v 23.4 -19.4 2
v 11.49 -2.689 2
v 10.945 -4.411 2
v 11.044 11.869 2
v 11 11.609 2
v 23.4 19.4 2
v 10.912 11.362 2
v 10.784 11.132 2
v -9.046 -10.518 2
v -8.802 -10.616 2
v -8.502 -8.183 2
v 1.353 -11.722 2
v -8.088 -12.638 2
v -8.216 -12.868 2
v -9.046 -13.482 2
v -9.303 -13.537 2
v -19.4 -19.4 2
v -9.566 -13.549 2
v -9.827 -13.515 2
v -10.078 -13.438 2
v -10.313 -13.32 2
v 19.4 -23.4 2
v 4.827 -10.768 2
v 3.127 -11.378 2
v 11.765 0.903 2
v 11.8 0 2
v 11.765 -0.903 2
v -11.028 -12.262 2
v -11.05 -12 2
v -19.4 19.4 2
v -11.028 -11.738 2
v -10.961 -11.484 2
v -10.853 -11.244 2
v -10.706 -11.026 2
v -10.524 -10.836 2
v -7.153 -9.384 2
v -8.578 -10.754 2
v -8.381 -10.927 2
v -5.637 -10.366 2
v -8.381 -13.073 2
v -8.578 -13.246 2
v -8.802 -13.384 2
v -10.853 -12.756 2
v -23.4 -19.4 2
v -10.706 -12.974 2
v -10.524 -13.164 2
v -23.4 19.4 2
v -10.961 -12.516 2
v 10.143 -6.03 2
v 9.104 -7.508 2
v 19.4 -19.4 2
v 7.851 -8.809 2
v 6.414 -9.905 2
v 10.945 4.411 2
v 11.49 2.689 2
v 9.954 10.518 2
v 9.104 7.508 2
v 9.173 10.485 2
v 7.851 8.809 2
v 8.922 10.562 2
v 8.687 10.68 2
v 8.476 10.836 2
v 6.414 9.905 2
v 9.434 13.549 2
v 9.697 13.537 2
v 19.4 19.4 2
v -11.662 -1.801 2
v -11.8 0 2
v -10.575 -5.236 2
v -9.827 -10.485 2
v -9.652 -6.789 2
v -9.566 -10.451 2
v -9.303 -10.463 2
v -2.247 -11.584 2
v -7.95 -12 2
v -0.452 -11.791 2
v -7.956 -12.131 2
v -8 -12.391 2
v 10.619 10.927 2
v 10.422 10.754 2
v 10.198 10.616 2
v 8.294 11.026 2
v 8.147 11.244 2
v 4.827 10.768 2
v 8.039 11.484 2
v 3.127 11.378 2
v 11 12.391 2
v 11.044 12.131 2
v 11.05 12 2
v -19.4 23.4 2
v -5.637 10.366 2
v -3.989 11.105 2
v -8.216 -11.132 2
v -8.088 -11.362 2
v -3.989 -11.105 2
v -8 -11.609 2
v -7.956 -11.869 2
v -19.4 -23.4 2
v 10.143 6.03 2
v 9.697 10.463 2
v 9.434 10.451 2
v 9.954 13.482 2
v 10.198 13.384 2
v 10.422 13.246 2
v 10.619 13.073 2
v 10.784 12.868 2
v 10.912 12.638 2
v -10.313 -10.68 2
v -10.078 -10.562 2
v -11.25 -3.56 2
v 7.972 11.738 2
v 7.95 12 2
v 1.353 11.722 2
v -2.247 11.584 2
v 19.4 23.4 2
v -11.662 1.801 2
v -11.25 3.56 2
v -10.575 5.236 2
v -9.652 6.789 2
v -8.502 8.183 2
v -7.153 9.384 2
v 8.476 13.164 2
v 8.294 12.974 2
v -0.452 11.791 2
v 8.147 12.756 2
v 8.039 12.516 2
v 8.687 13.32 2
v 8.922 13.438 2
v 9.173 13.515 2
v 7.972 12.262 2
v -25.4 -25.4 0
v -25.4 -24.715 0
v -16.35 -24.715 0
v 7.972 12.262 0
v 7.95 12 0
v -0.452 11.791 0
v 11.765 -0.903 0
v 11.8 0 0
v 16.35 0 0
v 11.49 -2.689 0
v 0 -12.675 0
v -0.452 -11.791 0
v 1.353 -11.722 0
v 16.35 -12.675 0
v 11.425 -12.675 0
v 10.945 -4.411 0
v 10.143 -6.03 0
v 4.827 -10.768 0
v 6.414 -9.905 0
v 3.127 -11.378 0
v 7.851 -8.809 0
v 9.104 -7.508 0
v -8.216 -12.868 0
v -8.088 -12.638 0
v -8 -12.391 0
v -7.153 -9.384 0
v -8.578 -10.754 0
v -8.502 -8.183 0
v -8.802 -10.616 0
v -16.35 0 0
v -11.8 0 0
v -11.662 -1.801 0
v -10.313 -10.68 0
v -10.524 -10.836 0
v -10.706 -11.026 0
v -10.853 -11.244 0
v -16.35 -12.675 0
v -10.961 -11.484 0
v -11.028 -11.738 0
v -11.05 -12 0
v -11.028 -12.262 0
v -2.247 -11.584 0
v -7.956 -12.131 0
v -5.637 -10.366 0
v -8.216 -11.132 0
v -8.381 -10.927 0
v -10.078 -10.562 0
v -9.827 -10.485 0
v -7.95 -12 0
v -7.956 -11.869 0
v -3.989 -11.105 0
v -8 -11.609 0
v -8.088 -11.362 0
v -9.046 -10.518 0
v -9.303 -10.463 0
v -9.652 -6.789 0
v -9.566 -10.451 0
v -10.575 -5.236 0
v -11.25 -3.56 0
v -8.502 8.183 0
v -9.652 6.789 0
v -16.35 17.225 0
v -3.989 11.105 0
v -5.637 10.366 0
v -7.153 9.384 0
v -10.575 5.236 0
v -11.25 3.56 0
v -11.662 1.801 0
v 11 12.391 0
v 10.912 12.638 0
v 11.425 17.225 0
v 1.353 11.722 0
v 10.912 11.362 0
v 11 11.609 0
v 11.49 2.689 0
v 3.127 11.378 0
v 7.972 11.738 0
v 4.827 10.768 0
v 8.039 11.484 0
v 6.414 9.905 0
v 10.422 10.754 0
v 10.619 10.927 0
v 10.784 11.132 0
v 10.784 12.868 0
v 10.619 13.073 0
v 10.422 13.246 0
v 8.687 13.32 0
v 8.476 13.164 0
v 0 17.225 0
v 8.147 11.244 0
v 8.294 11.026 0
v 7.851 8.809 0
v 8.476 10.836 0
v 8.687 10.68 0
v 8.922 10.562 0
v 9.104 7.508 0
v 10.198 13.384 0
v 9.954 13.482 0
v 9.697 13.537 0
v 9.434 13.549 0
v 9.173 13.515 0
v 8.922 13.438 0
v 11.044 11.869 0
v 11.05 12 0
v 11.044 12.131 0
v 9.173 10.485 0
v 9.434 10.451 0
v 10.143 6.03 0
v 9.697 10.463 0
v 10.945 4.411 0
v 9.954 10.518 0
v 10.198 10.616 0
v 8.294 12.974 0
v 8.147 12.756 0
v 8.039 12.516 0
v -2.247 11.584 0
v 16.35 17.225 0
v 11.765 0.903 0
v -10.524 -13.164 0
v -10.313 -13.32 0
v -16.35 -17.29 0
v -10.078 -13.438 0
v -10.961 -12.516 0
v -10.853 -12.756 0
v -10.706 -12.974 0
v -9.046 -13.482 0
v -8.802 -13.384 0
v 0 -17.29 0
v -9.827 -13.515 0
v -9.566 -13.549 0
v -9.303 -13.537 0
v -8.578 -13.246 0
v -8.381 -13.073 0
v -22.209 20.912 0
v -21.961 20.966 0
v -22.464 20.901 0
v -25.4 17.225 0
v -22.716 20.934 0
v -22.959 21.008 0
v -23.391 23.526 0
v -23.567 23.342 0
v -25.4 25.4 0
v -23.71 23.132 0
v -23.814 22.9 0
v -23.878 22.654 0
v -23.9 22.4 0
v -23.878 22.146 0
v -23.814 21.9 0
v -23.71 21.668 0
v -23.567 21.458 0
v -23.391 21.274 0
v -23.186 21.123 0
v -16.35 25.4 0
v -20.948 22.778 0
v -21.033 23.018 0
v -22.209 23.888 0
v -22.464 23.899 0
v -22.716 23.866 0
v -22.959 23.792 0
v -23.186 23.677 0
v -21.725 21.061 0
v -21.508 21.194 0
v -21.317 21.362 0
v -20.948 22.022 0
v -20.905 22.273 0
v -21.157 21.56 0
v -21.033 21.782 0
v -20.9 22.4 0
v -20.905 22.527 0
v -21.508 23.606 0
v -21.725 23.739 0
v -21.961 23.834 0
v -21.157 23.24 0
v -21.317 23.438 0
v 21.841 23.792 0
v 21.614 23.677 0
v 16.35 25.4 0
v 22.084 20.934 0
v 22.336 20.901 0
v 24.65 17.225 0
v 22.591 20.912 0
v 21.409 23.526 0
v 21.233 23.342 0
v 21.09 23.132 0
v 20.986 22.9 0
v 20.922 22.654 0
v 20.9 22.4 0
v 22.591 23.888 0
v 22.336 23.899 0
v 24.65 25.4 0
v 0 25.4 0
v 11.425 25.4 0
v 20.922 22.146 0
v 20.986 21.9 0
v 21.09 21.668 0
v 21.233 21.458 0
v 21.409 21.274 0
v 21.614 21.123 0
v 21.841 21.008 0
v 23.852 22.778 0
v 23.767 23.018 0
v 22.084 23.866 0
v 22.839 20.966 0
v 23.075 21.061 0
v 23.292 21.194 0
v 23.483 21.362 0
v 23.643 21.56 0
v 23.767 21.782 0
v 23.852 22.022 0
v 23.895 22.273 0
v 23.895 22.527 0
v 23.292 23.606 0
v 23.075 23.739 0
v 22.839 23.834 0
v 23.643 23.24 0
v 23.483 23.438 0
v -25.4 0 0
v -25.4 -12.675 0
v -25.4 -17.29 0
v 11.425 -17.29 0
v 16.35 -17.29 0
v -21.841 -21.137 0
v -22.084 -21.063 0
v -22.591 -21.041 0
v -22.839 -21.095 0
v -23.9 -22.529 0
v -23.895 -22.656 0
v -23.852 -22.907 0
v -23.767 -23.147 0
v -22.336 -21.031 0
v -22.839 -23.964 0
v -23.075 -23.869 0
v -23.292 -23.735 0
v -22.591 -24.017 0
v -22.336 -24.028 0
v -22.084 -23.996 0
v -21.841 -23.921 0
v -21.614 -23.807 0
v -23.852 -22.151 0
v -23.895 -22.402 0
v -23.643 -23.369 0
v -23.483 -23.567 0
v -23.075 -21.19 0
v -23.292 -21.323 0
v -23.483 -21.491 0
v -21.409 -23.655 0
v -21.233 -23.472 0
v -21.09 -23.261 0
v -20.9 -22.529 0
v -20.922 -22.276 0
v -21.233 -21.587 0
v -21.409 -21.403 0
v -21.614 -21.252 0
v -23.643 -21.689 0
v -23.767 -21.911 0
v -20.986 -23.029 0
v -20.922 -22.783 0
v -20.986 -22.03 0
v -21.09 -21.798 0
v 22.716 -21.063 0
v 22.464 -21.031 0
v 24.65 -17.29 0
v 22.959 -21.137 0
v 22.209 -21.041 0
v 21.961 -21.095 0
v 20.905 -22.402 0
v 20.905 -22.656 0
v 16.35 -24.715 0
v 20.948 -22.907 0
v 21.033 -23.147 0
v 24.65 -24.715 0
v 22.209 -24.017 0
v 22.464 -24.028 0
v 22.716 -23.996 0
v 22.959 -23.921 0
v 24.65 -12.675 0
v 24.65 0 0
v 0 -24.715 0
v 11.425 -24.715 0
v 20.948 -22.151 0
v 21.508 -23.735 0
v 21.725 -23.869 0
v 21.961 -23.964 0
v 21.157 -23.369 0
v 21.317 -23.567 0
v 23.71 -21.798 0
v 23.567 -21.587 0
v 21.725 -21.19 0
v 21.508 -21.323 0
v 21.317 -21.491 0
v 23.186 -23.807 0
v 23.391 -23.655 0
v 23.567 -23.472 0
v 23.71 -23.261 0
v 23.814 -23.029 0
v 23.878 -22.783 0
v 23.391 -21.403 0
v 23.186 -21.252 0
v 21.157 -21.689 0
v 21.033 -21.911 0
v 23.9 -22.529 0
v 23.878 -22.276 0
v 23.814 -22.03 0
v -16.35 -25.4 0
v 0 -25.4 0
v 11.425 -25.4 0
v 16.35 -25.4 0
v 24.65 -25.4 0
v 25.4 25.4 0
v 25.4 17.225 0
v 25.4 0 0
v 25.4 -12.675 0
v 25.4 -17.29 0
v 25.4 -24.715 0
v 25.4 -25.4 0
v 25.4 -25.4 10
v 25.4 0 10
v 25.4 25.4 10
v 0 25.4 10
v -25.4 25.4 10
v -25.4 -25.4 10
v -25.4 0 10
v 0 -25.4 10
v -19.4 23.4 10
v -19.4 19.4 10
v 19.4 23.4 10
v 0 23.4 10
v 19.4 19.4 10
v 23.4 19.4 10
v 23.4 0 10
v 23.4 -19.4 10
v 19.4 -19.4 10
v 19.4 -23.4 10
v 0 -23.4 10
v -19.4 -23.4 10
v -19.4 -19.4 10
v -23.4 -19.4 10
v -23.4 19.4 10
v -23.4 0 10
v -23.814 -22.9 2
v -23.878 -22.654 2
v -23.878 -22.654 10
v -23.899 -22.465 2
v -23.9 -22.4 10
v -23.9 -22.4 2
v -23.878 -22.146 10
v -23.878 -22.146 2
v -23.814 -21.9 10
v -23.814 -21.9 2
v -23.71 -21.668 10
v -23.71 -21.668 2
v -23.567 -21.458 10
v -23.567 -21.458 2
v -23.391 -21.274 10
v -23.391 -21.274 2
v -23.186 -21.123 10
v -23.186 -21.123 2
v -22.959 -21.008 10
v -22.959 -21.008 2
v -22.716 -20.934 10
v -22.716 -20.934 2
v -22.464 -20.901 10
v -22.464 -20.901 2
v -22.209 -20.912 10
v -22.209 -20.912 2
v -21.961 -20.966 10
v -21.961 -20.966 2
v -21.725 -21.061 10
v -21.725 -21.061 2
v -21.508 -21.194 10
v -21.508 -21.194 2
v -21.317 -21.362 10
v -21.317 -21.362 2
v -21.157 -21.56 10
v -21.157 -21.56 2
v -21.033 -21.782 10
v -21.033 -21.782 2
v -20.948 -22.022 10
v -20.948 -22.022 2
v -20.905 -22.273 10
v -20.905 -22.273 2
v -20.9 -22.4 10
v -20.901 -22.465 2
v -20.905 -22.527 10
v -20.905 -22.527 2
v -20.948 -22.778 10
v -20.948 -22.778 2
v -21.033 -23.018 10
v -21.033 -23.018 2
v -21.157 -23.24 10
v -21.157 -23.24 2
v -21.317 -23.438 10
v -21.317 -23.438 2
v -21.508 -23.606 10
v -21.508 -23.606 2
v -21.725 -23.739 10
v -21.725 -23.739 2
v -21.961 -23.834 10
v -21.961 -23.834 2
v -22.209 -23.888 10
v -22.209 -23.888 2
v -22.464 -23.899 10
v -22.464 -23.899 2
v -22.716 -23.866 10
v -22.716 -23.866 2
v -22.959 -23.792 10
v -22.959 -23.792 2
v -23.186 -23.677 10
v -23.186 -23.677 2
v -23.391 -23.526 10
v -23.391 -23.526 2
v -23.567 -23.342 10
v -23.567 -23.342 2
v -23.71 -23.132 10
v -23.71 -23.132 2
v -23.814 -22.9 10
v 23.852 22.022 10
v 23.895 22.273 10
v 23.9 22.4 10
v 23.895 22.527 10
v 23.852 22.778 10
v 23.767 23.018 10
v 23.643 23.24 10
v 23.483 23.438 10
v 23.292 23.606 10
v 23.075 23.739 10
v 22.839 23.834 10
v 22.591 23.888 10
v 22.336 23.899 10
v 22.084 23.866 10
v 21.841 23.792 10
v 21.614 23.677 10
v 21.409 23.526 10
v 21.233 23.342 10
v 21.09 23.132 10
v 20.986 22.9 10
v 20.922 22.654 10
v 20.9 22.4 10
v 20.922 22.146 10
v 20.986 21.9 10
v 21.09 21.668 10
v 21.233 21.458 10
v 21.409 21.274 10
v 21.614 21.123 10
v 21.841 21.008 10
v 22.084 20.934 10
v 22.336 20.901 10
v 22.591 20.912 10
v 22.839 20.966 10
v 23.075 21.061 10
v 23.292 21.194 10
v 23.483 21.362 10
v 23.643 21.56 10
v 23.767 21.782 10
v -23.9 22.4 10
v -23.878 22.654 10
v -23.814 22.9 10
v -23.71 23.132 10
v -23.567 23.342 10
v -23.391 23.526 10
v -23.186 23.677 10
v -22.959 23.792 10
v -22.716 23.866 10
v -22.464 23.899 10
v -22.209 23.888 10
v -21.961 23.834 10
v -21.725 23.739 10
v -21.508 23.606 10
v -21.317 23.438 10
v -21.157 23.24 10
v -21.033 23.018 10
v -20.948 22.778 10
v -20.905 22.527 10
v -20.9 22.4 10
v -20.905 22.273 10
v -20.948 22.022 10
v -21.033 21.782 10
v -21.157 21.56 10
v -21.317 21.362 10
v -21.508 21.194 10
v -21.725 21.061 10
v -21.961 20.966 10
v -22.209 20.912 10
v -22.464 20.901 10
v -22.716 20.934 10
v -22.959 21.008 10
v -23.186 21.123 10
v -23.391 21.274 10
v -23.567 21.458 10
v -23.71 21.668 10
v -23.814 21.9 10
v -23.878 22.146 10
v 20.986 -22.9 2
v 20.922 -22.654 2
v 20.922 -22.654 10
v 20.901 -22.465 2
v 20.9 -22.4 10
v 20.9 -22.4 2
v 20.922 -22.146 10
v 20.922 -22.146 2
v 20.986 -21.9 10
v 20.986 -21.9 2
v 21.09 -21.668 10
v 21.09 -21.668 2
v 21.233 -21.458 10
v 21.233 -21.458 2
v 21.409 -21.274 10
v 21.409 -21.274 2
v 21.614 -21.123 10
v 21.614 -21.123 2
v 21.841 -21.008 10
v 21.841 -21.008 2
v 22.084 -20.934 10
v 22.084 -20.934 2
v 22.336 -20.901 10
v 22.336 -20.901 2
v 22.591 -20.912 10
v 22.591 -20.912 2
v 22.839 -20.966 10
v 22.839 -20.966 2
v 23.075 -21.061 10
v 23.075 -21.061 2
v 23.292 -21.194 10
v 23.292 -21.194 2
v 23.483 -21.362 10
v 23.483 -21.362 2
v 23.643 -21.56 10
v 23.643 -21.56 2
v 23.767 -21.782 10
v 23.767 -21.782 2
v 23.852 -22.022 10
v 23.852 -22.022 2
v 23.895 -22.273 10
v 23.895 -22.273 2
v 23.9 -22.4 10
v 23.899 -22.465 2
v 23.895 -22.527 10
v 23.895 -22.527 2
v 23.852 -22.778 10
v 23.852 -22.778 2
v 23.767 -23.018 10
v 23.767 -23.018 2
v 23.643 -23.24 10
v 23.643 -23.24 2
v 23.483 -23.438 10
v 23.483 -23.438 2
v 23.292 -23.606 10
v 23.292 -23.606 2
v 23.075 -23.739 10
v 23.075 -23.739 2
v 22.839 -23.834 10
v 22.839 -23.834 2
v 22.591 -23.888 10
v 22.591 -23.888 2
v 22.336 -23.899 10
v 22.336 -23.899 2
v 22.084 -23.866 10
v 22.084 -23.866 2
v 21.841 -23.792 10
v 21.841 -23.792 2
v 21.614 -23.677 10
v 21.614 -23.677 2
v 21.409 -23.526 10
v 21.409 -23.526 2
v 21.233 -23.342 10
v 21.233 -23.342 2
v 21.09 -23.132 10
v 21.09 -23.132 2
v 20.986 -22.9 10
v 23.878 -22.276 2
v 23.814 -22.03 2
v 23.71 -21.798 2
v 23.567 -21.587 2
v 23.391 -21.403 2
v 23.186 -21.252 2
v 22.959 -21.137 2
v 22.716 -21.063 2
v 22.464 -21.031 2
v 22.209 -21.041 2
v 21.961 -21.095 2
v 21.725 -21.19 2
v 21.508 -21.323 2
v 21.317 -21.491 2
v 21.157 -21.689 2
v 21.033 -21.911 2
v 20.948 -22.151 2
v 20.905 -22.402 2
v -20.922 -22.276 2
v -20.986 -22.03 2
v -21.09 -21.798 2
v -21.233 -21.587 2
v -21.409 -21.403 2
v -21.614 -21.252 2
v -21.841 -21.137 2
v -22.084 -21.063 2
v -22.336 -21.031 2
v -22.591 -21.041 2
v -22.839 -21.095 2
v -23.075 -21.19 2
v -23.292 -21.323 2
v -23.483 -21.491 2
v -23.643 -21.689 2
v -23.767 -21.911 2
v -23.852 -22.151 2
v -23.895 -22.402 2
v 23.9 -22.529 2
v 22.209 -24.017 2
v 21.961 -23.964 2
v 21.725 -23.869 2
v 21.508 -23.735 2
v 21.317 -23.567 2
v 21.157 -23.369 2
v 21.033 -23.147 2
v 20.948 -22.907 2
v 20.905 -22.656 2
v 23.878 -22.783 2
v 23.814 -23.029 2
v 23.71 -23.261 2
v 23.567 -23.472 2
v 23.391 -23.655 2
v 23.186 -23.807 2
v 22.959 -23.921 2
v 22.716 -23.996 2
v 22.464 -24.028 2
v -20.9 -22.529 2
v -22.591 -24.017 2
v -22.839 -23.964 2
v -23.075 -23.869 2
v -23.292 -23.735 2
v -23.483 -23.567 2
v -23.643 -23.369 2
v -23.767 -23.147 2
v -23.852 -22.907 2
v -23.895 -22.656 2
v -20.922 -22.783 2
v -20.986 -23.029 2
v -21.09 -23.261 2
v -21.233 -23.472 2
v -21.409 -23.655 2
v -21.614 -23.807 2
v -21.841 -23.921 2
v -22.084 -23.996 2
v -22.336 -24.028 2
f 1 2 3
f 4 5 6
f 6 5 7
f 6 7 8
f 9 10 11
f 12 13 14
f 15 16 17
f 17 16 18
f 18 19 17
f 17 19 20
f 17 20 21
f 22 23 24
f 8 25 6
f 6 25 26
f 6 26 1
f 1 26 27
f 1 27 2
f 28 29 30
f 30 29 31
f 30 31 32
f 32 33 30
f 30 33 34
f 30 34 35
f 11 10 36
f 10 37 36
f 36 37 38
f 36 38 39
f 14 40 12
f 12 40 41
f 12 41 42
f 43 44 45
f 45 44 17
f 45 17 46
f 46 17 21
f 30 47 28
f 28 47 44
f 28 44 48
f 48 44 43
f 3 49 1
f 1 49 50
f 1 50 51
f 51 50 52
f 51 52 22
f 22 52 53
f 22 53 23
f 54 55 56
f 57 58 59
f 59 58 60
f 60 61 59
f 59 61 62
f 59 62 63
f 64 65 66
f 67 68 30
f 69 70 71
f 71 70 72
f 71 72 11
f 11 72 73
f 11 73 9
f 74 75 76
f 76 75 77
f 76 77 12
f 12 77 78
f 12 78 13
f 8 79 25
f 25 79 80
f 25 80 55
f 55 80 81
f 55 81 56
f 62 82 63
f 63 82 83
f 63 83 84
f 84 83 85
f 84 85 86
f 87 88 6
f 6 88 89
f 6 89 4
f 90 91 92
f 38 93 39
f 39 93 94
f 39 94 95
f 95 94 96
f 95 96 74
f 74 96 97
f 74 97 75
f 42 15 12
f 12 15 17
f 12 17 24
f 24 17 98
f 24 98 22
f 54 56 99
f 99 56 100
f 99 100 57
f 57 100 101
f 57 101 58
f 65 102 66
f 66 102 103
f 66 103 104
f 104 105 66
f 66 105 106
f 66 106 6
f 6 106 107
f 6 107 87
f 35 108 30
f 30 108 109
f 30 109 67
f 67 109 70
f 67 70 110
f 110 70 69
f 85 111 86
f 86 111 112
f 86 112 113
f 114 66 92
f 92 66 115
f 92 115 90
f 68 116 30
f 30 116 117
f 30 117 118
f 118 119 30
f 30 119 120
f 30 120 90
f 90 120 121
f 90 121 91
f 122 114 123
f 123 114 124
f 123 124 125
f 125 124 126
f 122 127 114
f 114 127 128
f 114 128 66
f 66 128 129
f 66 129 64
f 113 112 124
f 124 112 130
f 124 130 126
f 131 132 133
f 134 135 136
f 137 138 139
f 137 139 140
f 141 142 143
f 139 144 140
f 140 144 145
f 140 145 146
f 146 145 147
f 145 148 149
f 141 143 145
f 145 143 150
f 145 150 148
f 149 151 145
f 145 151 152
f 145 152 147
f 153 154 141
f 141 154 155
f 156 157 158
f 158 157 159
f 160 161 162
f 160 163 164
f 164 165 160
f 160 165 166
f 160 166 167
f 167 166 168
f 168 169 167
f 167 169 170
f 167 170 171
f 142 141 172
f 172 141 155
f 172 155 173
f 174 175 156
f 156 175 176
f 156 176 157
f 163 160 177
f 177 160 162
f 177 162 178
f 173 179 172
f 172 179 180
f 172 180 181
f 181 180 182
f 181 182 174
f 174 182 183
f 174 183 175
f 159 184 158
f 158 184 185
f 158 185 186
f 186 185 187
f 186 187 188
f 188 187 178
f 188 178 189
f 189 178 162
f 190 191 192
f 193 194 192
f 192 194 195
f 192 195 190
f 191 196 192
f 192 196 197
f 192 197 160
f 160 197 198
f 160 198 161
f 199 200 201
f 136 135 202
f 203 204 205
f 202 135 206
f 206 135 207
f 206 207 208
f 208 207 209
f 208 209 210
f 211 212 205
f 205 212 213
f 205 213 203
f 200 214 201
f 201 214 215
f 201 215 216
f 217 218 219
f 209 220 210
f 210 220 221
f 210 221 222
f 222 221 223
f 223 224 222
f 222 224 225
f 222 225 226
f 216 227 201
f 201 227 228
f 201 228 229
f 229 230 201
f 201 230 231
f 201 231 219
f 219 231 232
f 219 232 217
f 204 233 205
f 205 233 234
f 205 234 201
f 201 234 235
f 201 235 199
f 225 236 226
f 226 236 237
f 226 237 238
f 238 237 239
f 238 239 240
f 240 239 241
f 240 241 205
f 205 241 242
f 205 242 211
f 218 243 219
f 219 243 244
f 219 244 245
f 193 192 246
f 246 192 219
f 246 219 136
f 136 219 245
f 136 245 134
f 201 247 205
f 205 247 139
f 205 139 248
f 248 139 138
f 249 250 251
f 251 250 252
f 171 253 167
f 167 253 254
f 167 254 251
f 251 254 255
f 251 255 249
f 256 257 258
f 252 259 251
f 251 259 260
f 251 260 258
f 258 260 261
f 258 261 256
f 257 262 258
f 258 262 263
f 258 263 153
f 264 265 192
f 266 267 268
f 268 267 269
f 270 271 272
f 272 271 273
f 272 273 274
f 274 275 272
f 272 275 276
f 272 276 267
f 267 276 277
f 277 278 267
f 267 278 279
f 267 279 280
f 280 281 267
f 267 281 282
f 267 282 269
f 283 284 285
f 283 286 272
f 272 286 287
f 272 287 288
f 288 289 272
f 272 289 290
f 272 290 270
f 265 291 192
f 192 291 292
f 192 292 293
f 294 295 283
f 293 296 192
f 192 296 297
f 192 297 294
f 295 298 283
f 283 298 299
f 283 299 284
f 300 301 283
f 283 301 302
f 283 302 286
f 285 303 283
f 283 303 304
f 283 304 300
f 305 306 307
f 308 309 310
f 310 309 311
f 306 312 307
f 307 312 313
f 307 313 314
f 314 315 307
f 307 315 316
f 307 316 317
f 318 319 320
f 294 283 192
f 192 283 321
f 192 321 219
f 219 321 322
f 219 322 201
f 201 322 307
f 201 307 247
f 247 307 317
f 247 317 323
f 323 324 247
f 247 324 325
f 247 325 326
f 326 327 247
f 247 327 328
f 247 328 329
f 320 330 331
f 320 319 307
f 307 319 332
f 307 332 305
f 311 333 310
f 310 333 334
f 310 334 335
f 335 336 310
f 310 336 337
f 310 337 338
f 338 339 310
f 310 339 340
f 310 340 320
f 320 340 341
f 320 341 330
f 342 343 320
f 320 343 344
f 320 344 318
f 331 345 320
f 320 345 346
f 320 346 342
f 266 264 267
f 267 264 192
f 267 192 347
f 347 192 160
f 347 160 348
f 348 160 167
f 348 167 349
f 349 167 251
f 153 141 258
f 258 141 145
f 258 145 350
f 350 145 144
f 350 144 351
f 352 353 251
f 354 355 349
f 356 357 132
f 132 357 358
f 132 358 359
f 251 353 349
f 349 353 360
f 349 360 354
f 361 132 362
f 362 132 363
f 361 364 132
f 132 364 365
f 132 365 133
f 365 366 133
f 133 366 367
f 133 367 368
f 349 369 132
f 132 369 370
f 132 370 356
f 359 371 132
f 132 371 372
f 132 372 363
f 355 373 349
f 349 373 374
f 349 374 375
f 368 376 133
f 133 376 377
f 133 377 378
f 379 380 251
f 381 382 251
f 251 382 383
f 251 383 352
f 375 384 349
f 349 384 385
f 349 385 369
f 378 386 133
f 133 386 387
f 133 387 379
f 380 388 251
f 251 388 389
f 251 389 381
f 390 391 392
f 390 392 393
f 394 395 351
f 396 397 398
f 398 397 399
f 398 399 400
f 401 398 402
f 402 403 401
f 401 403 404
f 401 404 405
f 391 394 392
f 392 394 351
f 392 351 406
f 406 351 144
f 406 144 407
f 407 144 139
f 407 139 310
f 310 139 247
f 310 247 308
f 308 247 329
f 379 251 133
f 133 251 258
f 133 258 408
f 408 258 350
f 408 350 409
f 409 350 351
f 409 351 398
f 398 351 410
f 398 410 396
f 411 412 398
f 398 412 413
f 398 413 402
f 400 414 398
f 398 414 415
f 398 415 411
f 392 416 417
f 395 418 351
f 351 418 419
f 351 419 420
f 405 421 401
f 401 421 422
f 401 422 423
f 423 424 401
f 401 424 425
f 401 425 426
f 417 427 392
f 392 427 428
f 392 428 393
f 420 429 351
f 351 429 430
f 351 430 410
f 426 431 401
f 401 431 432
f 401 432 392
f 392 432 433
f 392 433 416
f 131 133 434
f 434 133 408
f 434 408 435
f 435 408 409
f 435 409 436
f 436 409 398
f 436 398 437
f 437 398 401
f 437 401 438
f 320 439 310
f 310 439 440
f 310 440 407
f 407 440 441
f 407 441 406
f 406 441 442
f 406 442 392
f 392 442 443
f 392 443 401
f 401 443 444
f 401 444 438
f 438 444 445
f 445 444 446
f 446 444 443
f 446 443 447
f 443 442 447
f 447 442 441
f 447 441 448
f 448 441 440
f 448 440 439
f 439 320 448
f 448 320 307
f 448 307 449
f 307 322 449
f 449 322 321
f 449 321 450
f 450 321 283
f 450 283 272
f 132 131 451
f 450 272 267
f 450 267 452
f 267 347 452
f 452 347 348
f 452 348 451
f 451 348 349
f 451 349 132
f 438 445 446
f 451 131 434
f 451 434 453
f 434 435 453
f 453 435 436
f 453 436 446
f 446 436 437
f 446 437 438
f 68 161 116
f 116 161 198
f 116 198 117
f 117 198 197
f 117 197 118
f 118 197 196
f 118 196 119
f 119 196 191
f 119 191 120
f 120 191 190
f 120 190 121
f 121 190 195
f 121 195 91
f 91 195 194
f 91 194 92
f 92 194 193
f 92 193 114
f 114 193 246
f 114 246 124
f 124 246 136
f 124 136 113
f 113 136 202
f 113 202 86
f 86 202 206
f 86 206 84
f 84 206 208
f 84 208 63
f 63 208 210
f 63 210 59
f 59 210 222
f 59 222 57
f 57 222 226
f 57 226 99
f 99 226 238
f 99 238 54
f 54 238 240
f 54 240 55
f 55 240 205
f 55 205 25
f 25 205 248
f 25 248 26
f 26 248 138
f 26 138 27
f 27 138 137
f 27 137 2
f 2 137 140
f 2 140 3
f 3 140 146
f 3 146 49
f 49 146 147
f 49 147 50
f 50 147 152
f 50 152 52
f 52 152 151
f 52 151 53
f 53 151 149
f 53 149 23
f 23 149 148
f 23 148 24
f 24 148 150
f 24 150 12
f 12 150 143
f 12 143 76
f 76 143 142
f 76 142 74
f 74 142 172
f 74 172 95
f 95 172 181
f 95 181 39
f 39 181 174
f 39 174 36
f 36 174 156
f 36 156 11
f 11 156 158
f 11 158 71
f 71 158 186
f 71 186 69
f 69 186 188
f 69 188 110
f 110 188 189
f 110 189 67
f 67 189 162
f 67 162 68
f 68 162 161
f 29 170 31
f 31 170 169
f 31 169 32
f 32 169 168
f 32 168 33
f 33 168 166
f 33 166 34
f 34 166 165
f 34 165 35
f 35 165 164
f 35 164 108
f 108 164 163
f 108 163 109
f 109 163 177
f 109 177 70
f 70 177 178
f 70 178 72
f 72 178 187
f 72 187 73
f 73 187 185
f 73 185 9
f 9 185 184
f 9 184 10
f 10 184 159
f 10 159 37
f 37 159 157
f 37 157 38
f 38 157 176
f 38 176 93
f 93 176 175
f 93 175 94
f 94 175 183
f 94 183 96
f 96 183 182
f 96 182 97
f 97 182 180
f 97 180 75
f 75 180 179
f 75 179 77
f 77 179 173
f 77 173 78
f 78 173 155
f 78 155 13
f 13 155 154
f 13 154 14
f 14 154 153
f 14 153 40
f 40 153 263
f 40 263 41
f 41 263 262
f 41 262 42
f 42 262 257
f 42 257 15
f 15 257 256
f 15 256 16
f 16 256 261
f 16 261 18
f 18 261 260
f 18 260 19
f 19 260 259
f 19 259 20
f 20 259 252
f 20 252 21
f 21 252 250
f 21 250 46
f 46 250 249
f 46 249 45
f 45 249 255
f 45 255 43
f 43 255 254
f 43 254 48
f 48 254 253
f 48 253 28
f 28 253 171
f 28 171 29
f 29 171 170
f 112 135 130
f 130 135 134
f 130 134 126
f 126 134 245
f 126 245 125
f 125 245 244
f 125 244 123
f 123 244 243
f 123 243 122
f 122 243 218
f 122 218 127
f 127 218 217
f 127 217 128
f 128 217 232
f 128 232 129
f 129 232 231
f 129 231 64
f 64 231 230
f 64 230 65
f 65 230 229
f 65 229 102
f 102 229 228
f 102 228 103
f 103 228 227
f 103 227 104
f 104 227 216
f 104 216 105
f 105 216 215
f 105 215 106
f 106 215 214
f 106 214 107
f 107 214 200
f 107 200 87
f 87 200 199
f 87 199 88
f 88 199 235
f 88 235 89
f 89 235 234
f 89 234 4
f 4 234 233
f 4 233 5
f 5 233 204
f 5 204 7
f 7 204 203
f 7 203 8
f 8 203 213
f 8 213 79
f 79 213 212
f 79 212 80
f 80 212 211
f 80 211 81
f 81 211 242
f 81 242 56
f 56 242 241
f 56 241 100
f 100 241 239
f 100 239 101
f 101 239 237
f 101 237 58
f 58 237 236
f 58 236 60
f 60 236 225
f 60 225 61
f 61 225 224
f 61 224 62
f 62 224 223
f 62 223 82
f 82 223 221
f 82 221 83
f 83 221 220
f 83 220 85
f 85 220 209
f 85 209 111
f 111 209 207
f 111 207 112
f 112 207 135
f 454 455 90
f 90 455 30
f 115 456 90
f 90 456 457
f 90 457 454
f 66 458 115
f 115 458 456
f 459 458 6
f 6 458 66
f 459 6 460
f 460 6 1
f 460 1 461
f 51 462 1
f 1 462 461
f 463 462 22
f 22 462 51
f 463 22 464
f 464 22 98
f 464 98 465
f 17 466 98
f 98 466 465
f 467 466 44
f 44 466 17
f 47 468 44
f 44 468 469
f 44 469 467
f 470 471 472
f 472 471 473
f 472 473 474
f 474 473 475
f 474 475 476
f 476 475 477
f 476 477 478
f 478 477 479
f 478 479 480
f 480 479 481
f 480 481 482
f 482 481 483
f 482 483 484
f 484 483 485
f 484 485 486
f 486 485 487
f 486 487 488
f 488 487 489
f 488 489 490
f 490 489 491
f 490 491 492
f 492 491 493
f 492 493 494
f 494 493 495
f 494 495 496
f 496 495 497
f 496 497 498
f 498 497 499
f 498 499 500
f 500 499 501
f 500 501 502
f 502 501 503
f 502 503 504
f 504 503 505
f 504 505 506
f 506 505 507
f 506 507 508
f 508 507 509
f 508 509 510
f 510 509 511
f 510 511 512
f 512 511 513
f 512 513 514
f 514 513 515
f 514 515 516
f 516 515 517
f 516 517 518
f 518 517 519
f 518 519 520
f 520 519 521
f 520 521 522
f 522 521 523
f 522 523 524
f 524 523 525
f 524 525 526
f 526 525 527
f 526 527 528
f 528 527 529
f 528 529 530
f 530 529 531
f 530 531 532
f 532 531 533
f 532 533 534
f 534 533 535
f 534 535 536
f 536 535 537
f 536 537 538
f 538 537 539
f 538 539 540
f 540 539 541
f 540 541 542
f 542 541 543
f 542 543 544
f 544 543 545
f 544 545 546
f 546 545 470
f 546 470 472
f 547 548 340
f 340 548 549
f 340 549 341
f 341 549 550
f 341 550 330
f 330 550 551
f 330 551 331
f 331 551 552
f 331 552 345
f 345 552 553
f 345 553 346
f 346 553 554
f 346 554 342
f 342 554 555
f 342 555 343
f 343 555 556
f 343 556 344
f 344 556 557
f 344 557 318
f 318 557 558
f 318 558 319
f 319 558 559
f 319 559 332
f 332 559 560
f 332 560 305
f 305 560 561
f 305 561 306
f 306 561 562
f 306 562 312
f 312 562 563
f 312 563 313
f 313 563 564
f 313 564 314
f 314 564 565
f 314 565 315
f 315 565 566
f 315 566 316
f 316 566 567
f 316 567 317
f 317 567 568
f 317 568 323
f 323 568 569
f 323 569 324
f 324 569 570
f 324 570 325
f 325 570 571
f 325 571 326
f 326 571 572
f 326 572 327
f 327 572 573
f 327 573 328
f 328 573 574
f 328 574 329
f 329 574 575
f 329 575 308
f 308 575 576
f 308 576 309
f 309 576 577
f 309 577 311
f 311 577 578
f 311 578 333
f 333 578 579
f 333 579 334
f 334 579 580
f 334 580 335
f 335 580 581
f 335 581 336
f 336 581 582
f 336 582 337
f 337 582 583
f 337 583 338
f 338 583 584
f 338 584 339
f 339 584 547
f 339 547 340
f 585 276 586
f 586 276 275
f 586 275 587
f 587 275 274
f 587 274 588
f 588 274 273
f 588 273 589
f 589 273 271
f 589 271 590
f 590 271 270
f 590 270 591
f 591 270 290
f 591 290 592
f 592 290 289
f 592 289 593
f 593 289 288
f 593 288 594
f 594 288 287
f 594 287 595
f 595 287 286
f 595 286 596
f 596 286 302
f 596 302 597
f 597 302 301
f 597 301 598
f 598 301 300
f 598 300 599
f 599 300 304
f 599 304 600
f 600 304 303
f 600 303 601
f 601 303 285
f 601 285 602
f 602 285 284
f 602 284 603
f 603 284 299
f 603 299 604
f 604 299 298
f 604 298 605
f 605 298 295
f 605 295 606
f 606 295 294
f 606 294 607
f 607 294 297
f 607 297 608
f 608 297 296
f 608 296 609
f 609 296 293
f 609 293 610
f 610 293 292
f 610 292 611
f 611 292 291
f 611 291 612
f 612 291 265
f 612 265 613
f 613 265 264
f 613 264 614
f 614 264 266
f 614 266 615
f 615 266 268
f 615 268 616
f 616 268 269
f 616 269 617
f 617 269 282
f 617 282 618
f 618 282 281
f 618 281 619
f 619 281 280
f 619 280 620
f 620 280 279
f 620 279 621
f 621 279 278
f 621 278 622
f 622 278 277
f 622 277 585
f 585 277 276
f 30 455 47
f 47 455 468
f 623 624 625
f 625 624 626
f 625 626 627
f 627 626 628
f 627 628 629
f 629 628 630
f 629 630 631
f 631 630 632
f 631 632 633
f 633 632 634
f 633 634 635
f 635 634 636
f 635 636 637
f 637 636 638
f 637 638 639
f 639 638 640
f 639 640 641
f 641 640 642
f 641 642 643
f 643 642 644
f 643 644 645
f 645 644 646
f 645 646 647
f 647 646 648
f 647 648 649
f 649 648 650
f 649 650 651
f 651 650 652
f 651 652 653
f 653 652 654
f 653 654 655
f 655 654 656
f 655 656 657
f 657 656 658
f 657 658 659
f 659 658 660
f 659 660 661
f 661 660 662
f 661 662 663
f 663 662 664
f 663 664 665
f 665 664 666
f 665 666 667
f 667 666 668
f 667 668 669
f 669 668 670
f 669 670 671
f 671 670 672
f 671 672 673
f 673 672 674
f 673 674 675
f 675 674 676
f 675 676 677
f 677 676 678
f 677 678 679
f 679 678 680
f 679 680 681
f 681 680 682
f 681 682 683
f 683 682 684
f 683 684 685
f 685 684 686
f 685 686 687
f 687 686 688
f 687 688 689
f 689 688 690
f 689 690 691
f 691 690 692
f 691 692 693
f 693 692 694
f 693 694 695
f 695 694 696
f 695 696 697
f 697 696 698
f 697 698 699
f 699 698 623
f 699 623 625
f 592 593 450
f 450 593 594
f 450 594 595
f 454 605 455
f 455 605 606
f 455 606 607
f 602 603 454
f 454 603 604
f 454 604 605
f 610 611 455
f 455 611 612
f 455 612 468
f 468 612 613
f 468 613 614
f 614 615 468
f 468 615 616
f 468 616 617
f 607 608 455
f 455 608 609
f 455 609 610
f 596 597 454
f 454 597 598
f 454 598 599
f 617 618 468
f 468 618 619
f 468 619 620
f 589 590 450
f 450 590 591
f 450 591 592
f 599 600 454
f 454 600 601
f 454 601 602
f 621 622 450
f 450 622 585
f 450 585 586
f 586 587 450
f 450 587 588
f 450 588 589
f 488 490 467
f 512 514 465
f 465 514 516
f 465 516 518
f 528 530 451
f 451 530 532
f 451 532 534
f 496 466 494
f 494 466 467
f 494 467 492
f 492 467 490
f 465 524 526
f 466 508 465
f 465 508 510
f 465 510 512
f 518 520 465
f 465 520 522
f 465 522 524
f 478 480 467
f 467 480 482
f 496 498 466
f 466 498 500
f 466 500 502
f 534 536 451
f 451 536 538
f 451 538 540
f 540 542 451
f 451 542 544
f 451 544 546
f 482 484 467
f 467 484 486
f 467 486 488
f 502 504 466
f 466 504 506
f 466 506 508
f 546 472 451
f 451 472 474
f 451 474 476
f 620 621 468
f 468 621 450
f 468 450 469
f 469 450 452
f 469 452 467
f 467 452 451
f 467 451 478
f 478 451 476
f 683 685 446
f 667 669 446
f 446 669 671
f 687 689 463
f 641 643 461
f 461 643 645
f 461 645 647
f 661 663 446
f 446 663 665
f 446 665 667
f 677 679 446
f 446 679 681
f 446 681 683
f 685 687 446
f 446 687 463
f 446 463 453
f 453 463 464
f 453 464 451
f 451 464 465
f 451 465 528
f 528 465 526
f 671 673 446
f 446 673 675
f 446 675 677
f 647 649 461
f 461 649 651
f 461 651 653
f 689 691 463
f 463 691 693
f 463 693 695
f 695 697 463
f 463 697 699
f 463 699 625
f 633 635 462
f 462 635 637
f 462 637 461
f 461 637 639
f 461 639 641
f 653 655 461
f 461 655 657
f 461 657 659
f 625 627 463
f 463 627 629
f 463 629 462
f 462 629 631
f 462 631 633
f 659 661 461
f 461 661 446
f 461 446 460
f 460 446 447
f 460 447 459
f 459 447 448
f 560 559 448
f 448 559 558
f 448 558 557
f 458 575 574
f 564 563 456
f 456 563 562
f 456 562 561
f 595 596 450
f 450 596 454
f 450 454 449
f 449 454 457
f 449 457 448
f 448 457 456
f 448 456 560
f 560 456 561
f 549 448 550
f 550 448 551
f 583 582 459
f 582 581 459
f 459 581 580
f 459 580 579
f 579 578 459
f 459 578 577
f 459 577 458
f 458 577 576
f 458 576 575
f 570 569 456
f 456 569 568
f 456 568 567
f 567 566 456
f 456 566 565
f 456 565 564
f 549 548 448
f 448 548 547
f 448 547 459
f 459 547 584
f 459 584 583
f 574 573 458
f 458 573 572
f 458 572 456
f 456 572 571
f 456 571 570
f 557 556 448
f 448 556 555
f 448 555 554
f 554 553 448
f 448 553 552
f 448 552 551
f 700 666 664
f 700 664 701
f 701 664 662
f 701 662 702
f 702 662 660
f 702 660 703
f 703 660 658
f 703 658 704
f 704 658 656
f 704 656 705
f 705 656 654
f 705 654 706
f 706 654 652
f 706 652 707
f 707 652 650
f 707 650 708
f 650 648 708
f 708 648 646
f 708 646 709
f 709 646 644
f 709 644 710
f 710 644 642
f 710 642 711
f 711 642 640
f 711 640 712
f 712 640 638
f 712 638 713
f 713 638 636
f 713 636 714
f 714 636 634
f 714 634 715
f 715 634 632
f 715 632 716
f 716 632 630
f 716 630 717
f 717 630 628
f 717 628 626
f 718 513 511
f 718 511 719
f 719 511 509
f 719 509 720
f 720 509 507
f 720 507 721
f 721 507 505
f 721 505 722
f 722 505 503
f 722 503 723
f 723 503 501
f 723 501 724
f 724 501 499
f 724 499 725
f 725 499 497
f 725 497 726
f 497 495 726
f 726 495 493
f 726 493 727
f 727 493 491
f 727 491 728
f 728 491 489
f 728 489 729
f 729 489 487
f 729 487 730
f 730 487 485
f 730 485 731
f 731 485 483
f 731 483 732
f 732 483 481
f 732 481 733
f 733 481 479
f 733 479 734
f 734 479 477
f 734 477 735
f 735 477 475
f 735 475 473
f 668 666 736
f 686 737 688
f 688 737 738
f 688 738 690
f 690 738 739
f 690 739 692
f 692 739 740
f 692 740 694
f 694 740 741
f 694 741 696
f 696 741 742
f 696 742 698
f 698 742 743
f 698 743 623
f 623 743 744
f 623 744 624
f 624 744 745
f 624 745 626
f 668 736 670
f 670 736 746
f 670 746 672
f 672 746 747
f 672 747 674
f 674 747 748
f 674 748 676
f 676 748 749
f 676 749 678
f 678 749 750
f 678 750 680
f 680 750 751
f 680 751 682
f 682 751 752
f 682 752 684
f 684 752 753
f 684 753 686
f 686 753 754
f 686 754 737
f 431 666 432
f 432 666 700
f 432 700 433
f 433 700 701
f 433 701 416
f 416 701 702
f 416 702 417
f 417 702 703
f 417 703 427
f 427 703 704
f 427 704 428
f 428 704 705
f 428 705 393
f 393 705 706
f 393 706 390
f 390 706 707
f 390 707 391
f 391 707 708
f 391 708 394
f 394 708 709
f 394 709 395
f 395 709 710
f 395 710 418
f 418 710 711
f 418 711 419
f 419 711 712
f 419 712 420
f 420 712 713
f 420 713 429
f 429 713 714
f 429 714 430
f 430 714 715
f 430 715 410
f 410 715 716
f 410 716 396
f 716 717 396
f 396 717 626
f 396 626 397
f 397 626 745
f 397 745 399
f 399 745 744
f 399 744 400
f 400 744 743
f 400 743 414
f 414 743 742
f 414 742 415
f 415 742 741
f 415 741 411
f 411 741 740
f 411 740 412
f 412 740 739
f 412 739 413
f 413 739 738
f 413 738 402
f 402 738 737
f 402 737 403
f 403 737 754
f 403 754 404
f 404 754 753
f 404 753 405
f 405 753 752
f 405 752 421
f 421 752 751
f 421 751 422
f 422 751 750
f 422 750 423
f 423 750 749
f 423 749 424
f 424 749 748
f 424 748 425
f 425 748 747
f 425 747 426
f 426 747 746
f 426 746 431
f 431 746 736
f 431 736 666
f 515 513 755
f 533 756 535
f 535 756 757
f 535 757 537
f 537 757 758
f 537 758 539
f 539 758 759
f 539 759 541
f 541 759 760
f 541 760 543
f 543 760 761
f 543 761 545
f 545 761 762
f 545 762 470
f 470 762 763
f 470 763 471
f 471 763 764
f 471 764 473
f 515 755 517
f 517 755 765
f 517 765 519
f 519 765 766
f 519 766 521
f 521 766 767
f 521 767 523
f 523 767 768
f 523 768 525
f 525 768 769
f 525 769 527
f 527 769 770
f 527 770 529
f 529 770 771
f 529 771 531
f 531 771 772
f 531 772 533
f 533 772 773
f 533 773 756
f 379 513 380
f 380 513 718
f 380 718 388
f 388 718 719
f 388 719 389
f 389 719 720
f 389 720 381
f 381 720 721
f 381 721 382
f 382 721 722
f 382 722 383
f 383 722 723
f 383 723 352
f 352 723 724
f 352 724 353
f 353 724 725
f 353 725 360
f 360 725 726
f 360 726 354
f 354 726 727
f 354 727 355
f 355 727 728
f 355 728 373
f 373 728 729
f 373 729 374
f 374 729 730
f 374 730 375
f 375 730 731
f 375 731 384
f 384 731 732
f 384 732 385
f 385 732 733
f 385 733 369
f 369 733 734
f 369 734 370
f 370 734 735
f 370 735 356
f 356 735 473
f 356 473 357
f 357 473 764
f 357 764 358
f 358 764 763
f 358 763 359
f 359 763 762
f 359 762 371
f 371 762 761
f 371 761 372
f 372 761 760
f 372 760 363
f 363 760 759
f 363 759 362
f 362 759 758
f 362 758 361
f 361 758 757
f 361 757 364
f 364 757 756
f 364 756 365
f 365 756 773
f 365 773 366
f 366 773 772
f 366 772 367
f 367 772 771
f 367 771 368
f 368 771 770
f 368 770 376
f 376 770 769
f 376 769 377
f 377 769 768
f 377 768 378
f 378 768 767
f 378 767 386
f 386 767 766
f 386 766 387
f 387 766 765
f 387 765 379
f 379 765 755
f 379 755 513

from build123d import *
from build123d.topology import SkipClean

# Parameters (mm, degrees)
SKETCH3_W           = 50.8
SKETCH3_H           = 50.8
SKETCH3_R           = 11.8
SKETCH3_R_2         = 1.55
BOSS_EXTRUDE5_DEPTH = 2
SKETCH1_W           = 2
SKETCH1_H           = 38.8
SKETCH1_W_2         = 38.8
SKETCH1_H_2         = 2
BOSS_EXTRUDE6_DEPTH = 10
SKETCH7_R           = 1.5
CUT_EXTRUDE2_DEPTH  = 37.80108694


with BuildPart() as part:
    # Sketch3 → Boss-Extrude5 (new body)
    with BuildSketch(Plane.XY):
        Rectangle(SKETCH3_W, SKETCH3_H)
        Circle(SKETCH3_R, mode=Mode.SUBTRACT)
        with Locations((-9.5, -12)):
            Circle(SKETCH3_R_2, mode=Mode.SUBTRACT)
        with Locations((9.5, 12)):
            Circle(SKETCH3_R_2, mode=Mode.SUBTRACT)
    extrude(amount=BOSS_EXTRUDE5_DEPTH)

    # Sketch1 → Boss-Extrude6 (add)
    with BuildSketch(Plane.XY):
        with Locations((24.4, 0)):
            Rectangle(SKETCH1_W, SKETCH1_H)
        with BuildLine():
            Line((21.281966011, -23.4), (19.4, -23.4))
            Line((19.4, -23.4), (19.4, -25.4))
            Line((19.4, -25.4), (25.4, -25.4))
            Line((25.4, -25.4), (25.4, -19.4))
            Line((25.4, -19.4), (23.4, -19.4))
            Line((23.4, -19.4), (23.4, -21.281966011))
            ThreePointArc((23.4, -21.281966011), (23.769306394, -21.787627564), (23.9, -22.4))
            ThreePointArc((23.9, -22.4), (22.935233135, -23.801258538), (21.281966011, -23.4))
        make_face()
        with BuildLine():
            Line((19.4, -19.4), (19.4, -23.4))
            Line((19.4, -23.4), (21.281966011, -23.4))
            ThreePointArc((21.281966011, -23.4), (21.339339828, -21.339339828), (23.4, -21.281966011))
            Line((23.4, -21.281966011), (23.4, -19.4))
            Line((23.4, -19.4), (19.4, -19.4))
        make_face()
        with Locations((0, -24.4)):
            Rectangle(SKETCH1_W_2, SKETCH1_H_2)
        with BuildLine():
            ThreePointArc((-20.9, -22.4), (-20.998741462, -22.935233135), (-21.281966011, -23.4))
            Line((-21.281966011, -23.4), (-19.4, -23.4))
            Line((-19.4, -23.4), (-19.4, -19.4))
            Line((-19.4, -19.4), (-23.4, -19.4))
            Line((-23.4, -19.4), (-23.4, -21.281966011))
            ThreePointArc((-23.4, -21.281966011), (-21.787627564, -21.030693606), (-20.9, -22.4))
        make_face()
        with BuildLine():
            Line((-19.4, -23.4), (-21.281966011, -23.4))
            ThreePointArc((-21.281966011, -23.4), (-23.460660172, -23.460660172), (-23.4, -21.281966011))
            Line((-23.4, -21.281966011), (-23.4, -19.4))
            Line((-23.4, -19.4), (-25.4, -19.4))
            Line((-25.4, -19.4), (-25.4, -25.4))
            Line((-25.4, -25.4), (-19.4, -25.4))
            Line((-19.4, -25.4), (-19.4, -23.4))
        make_face()
        with Locations((-24.4, 0)):
            Rectangle(SKETCH1_W, SKETCH1_H)
        with BuildLine():
            Line((-25.4, 19.4), (-23.4, 19.4))
            Line((-23.4, 19.4), (-23.4, 21.281966011))
            ThreePointArc((-23.4, 21.281966011), (-23.460660172, 23.460660172), (-21.281966011, 23.4))
            Line((-21.281966011, 23.4), (-19.4, 23.4))
            Line((-19.4, 23.4), (-19.4, 25.4))
            Line((-19.4, 25.4), (-25.4, 25.4))
            Line((-25.4, 25.4), (-25.4, 19.4))
        make_face()
        with BuildLine():
            Line((-23.4, 21.281966011), (-23.4, 19.4))
            Line((-23.4, 19.4), (-19.4, 19.4))
            Line((-19.4, 19.4), (-19.4, 23.4))
            Line((-19.4, 23.4), (-21.281966011, 23.4))
            ThreePointArc((-21.281966011, 23.4), (-20.998741462, 22.935233135), (-20.9, 22.4))
            ThreePointArc((-20.9, 22.4), (-21.787627564, 21.030693606), (-23.4, 21.281966011))
        make_face()
        with Locations((0, 24.4)):
            Rectangle(SKETCH1_W_2, SKETCH1_H_2)
        with BuildLine():
            Line((23.4, 21.281966011), (23.4, 19.4))
            Line((23.4, 19.4), (25.4, 19.4))
            Line((25.4, 19.4), (25.4, 25.4))
            Line((25.4, 25.4), (19.4, 25.4))
            Line((19.4, 25.4), (19.4, 23.4))
            Line((19.4, 23.4), (21.281966011, 23.4))
            ThreePointArc((21.281966011, 23.4), (22.935233135, 23.801258538), (23.9, 22.4))
            ThreePointArc((23.9, 22.4), (23.769306394, 21.787627564), (23.4, 21.281966011))
        make_face()
        with BuildLine():
            Line((19.4, 19.4), (23.4, 19.4))
            Line((23.4, 19.4), (23.4, 21.281966011))
            ThreePointArc((23.4, 21.281966011), (21.339339828, 21.339339828), (21.281966011, 23.4))
            Line((21.281966011, 23.4), (19.4, 23.4))
            Line((19.4, 23.4), (19.4, 19.4))
        make_face()
    extrude(amount=BOSS_EXTRUDE6_DEPTH)

    # Sketch7 → Cut-Extrude2 (cut, through all)
    with SkipClean():  # the faces are left unmerged after this step: merging them gives an invalid solid
        with BuildSketch(Plane.XY.offset(2)):
            with Locations((-22.4, 22.4)):
                Circle(SKETCH7_R)
            with Locations(Location((22.4, 22.4, 0), (0, 0, 180))):
                Circle(SKETCH7_R)
            with Locations((22.4, -22.529256464)):
                Circle(SKETCH7_R)
            with Locations(Location((-22.4, -22.529256464, 0), (0, 0, 2.46938104))):
                Circle(SKETCH7_R)
        extrude(amount=-CUT_EXTRUDE2_DEPTH, mode=Mode.SUBTRACT)


solid = part.part
